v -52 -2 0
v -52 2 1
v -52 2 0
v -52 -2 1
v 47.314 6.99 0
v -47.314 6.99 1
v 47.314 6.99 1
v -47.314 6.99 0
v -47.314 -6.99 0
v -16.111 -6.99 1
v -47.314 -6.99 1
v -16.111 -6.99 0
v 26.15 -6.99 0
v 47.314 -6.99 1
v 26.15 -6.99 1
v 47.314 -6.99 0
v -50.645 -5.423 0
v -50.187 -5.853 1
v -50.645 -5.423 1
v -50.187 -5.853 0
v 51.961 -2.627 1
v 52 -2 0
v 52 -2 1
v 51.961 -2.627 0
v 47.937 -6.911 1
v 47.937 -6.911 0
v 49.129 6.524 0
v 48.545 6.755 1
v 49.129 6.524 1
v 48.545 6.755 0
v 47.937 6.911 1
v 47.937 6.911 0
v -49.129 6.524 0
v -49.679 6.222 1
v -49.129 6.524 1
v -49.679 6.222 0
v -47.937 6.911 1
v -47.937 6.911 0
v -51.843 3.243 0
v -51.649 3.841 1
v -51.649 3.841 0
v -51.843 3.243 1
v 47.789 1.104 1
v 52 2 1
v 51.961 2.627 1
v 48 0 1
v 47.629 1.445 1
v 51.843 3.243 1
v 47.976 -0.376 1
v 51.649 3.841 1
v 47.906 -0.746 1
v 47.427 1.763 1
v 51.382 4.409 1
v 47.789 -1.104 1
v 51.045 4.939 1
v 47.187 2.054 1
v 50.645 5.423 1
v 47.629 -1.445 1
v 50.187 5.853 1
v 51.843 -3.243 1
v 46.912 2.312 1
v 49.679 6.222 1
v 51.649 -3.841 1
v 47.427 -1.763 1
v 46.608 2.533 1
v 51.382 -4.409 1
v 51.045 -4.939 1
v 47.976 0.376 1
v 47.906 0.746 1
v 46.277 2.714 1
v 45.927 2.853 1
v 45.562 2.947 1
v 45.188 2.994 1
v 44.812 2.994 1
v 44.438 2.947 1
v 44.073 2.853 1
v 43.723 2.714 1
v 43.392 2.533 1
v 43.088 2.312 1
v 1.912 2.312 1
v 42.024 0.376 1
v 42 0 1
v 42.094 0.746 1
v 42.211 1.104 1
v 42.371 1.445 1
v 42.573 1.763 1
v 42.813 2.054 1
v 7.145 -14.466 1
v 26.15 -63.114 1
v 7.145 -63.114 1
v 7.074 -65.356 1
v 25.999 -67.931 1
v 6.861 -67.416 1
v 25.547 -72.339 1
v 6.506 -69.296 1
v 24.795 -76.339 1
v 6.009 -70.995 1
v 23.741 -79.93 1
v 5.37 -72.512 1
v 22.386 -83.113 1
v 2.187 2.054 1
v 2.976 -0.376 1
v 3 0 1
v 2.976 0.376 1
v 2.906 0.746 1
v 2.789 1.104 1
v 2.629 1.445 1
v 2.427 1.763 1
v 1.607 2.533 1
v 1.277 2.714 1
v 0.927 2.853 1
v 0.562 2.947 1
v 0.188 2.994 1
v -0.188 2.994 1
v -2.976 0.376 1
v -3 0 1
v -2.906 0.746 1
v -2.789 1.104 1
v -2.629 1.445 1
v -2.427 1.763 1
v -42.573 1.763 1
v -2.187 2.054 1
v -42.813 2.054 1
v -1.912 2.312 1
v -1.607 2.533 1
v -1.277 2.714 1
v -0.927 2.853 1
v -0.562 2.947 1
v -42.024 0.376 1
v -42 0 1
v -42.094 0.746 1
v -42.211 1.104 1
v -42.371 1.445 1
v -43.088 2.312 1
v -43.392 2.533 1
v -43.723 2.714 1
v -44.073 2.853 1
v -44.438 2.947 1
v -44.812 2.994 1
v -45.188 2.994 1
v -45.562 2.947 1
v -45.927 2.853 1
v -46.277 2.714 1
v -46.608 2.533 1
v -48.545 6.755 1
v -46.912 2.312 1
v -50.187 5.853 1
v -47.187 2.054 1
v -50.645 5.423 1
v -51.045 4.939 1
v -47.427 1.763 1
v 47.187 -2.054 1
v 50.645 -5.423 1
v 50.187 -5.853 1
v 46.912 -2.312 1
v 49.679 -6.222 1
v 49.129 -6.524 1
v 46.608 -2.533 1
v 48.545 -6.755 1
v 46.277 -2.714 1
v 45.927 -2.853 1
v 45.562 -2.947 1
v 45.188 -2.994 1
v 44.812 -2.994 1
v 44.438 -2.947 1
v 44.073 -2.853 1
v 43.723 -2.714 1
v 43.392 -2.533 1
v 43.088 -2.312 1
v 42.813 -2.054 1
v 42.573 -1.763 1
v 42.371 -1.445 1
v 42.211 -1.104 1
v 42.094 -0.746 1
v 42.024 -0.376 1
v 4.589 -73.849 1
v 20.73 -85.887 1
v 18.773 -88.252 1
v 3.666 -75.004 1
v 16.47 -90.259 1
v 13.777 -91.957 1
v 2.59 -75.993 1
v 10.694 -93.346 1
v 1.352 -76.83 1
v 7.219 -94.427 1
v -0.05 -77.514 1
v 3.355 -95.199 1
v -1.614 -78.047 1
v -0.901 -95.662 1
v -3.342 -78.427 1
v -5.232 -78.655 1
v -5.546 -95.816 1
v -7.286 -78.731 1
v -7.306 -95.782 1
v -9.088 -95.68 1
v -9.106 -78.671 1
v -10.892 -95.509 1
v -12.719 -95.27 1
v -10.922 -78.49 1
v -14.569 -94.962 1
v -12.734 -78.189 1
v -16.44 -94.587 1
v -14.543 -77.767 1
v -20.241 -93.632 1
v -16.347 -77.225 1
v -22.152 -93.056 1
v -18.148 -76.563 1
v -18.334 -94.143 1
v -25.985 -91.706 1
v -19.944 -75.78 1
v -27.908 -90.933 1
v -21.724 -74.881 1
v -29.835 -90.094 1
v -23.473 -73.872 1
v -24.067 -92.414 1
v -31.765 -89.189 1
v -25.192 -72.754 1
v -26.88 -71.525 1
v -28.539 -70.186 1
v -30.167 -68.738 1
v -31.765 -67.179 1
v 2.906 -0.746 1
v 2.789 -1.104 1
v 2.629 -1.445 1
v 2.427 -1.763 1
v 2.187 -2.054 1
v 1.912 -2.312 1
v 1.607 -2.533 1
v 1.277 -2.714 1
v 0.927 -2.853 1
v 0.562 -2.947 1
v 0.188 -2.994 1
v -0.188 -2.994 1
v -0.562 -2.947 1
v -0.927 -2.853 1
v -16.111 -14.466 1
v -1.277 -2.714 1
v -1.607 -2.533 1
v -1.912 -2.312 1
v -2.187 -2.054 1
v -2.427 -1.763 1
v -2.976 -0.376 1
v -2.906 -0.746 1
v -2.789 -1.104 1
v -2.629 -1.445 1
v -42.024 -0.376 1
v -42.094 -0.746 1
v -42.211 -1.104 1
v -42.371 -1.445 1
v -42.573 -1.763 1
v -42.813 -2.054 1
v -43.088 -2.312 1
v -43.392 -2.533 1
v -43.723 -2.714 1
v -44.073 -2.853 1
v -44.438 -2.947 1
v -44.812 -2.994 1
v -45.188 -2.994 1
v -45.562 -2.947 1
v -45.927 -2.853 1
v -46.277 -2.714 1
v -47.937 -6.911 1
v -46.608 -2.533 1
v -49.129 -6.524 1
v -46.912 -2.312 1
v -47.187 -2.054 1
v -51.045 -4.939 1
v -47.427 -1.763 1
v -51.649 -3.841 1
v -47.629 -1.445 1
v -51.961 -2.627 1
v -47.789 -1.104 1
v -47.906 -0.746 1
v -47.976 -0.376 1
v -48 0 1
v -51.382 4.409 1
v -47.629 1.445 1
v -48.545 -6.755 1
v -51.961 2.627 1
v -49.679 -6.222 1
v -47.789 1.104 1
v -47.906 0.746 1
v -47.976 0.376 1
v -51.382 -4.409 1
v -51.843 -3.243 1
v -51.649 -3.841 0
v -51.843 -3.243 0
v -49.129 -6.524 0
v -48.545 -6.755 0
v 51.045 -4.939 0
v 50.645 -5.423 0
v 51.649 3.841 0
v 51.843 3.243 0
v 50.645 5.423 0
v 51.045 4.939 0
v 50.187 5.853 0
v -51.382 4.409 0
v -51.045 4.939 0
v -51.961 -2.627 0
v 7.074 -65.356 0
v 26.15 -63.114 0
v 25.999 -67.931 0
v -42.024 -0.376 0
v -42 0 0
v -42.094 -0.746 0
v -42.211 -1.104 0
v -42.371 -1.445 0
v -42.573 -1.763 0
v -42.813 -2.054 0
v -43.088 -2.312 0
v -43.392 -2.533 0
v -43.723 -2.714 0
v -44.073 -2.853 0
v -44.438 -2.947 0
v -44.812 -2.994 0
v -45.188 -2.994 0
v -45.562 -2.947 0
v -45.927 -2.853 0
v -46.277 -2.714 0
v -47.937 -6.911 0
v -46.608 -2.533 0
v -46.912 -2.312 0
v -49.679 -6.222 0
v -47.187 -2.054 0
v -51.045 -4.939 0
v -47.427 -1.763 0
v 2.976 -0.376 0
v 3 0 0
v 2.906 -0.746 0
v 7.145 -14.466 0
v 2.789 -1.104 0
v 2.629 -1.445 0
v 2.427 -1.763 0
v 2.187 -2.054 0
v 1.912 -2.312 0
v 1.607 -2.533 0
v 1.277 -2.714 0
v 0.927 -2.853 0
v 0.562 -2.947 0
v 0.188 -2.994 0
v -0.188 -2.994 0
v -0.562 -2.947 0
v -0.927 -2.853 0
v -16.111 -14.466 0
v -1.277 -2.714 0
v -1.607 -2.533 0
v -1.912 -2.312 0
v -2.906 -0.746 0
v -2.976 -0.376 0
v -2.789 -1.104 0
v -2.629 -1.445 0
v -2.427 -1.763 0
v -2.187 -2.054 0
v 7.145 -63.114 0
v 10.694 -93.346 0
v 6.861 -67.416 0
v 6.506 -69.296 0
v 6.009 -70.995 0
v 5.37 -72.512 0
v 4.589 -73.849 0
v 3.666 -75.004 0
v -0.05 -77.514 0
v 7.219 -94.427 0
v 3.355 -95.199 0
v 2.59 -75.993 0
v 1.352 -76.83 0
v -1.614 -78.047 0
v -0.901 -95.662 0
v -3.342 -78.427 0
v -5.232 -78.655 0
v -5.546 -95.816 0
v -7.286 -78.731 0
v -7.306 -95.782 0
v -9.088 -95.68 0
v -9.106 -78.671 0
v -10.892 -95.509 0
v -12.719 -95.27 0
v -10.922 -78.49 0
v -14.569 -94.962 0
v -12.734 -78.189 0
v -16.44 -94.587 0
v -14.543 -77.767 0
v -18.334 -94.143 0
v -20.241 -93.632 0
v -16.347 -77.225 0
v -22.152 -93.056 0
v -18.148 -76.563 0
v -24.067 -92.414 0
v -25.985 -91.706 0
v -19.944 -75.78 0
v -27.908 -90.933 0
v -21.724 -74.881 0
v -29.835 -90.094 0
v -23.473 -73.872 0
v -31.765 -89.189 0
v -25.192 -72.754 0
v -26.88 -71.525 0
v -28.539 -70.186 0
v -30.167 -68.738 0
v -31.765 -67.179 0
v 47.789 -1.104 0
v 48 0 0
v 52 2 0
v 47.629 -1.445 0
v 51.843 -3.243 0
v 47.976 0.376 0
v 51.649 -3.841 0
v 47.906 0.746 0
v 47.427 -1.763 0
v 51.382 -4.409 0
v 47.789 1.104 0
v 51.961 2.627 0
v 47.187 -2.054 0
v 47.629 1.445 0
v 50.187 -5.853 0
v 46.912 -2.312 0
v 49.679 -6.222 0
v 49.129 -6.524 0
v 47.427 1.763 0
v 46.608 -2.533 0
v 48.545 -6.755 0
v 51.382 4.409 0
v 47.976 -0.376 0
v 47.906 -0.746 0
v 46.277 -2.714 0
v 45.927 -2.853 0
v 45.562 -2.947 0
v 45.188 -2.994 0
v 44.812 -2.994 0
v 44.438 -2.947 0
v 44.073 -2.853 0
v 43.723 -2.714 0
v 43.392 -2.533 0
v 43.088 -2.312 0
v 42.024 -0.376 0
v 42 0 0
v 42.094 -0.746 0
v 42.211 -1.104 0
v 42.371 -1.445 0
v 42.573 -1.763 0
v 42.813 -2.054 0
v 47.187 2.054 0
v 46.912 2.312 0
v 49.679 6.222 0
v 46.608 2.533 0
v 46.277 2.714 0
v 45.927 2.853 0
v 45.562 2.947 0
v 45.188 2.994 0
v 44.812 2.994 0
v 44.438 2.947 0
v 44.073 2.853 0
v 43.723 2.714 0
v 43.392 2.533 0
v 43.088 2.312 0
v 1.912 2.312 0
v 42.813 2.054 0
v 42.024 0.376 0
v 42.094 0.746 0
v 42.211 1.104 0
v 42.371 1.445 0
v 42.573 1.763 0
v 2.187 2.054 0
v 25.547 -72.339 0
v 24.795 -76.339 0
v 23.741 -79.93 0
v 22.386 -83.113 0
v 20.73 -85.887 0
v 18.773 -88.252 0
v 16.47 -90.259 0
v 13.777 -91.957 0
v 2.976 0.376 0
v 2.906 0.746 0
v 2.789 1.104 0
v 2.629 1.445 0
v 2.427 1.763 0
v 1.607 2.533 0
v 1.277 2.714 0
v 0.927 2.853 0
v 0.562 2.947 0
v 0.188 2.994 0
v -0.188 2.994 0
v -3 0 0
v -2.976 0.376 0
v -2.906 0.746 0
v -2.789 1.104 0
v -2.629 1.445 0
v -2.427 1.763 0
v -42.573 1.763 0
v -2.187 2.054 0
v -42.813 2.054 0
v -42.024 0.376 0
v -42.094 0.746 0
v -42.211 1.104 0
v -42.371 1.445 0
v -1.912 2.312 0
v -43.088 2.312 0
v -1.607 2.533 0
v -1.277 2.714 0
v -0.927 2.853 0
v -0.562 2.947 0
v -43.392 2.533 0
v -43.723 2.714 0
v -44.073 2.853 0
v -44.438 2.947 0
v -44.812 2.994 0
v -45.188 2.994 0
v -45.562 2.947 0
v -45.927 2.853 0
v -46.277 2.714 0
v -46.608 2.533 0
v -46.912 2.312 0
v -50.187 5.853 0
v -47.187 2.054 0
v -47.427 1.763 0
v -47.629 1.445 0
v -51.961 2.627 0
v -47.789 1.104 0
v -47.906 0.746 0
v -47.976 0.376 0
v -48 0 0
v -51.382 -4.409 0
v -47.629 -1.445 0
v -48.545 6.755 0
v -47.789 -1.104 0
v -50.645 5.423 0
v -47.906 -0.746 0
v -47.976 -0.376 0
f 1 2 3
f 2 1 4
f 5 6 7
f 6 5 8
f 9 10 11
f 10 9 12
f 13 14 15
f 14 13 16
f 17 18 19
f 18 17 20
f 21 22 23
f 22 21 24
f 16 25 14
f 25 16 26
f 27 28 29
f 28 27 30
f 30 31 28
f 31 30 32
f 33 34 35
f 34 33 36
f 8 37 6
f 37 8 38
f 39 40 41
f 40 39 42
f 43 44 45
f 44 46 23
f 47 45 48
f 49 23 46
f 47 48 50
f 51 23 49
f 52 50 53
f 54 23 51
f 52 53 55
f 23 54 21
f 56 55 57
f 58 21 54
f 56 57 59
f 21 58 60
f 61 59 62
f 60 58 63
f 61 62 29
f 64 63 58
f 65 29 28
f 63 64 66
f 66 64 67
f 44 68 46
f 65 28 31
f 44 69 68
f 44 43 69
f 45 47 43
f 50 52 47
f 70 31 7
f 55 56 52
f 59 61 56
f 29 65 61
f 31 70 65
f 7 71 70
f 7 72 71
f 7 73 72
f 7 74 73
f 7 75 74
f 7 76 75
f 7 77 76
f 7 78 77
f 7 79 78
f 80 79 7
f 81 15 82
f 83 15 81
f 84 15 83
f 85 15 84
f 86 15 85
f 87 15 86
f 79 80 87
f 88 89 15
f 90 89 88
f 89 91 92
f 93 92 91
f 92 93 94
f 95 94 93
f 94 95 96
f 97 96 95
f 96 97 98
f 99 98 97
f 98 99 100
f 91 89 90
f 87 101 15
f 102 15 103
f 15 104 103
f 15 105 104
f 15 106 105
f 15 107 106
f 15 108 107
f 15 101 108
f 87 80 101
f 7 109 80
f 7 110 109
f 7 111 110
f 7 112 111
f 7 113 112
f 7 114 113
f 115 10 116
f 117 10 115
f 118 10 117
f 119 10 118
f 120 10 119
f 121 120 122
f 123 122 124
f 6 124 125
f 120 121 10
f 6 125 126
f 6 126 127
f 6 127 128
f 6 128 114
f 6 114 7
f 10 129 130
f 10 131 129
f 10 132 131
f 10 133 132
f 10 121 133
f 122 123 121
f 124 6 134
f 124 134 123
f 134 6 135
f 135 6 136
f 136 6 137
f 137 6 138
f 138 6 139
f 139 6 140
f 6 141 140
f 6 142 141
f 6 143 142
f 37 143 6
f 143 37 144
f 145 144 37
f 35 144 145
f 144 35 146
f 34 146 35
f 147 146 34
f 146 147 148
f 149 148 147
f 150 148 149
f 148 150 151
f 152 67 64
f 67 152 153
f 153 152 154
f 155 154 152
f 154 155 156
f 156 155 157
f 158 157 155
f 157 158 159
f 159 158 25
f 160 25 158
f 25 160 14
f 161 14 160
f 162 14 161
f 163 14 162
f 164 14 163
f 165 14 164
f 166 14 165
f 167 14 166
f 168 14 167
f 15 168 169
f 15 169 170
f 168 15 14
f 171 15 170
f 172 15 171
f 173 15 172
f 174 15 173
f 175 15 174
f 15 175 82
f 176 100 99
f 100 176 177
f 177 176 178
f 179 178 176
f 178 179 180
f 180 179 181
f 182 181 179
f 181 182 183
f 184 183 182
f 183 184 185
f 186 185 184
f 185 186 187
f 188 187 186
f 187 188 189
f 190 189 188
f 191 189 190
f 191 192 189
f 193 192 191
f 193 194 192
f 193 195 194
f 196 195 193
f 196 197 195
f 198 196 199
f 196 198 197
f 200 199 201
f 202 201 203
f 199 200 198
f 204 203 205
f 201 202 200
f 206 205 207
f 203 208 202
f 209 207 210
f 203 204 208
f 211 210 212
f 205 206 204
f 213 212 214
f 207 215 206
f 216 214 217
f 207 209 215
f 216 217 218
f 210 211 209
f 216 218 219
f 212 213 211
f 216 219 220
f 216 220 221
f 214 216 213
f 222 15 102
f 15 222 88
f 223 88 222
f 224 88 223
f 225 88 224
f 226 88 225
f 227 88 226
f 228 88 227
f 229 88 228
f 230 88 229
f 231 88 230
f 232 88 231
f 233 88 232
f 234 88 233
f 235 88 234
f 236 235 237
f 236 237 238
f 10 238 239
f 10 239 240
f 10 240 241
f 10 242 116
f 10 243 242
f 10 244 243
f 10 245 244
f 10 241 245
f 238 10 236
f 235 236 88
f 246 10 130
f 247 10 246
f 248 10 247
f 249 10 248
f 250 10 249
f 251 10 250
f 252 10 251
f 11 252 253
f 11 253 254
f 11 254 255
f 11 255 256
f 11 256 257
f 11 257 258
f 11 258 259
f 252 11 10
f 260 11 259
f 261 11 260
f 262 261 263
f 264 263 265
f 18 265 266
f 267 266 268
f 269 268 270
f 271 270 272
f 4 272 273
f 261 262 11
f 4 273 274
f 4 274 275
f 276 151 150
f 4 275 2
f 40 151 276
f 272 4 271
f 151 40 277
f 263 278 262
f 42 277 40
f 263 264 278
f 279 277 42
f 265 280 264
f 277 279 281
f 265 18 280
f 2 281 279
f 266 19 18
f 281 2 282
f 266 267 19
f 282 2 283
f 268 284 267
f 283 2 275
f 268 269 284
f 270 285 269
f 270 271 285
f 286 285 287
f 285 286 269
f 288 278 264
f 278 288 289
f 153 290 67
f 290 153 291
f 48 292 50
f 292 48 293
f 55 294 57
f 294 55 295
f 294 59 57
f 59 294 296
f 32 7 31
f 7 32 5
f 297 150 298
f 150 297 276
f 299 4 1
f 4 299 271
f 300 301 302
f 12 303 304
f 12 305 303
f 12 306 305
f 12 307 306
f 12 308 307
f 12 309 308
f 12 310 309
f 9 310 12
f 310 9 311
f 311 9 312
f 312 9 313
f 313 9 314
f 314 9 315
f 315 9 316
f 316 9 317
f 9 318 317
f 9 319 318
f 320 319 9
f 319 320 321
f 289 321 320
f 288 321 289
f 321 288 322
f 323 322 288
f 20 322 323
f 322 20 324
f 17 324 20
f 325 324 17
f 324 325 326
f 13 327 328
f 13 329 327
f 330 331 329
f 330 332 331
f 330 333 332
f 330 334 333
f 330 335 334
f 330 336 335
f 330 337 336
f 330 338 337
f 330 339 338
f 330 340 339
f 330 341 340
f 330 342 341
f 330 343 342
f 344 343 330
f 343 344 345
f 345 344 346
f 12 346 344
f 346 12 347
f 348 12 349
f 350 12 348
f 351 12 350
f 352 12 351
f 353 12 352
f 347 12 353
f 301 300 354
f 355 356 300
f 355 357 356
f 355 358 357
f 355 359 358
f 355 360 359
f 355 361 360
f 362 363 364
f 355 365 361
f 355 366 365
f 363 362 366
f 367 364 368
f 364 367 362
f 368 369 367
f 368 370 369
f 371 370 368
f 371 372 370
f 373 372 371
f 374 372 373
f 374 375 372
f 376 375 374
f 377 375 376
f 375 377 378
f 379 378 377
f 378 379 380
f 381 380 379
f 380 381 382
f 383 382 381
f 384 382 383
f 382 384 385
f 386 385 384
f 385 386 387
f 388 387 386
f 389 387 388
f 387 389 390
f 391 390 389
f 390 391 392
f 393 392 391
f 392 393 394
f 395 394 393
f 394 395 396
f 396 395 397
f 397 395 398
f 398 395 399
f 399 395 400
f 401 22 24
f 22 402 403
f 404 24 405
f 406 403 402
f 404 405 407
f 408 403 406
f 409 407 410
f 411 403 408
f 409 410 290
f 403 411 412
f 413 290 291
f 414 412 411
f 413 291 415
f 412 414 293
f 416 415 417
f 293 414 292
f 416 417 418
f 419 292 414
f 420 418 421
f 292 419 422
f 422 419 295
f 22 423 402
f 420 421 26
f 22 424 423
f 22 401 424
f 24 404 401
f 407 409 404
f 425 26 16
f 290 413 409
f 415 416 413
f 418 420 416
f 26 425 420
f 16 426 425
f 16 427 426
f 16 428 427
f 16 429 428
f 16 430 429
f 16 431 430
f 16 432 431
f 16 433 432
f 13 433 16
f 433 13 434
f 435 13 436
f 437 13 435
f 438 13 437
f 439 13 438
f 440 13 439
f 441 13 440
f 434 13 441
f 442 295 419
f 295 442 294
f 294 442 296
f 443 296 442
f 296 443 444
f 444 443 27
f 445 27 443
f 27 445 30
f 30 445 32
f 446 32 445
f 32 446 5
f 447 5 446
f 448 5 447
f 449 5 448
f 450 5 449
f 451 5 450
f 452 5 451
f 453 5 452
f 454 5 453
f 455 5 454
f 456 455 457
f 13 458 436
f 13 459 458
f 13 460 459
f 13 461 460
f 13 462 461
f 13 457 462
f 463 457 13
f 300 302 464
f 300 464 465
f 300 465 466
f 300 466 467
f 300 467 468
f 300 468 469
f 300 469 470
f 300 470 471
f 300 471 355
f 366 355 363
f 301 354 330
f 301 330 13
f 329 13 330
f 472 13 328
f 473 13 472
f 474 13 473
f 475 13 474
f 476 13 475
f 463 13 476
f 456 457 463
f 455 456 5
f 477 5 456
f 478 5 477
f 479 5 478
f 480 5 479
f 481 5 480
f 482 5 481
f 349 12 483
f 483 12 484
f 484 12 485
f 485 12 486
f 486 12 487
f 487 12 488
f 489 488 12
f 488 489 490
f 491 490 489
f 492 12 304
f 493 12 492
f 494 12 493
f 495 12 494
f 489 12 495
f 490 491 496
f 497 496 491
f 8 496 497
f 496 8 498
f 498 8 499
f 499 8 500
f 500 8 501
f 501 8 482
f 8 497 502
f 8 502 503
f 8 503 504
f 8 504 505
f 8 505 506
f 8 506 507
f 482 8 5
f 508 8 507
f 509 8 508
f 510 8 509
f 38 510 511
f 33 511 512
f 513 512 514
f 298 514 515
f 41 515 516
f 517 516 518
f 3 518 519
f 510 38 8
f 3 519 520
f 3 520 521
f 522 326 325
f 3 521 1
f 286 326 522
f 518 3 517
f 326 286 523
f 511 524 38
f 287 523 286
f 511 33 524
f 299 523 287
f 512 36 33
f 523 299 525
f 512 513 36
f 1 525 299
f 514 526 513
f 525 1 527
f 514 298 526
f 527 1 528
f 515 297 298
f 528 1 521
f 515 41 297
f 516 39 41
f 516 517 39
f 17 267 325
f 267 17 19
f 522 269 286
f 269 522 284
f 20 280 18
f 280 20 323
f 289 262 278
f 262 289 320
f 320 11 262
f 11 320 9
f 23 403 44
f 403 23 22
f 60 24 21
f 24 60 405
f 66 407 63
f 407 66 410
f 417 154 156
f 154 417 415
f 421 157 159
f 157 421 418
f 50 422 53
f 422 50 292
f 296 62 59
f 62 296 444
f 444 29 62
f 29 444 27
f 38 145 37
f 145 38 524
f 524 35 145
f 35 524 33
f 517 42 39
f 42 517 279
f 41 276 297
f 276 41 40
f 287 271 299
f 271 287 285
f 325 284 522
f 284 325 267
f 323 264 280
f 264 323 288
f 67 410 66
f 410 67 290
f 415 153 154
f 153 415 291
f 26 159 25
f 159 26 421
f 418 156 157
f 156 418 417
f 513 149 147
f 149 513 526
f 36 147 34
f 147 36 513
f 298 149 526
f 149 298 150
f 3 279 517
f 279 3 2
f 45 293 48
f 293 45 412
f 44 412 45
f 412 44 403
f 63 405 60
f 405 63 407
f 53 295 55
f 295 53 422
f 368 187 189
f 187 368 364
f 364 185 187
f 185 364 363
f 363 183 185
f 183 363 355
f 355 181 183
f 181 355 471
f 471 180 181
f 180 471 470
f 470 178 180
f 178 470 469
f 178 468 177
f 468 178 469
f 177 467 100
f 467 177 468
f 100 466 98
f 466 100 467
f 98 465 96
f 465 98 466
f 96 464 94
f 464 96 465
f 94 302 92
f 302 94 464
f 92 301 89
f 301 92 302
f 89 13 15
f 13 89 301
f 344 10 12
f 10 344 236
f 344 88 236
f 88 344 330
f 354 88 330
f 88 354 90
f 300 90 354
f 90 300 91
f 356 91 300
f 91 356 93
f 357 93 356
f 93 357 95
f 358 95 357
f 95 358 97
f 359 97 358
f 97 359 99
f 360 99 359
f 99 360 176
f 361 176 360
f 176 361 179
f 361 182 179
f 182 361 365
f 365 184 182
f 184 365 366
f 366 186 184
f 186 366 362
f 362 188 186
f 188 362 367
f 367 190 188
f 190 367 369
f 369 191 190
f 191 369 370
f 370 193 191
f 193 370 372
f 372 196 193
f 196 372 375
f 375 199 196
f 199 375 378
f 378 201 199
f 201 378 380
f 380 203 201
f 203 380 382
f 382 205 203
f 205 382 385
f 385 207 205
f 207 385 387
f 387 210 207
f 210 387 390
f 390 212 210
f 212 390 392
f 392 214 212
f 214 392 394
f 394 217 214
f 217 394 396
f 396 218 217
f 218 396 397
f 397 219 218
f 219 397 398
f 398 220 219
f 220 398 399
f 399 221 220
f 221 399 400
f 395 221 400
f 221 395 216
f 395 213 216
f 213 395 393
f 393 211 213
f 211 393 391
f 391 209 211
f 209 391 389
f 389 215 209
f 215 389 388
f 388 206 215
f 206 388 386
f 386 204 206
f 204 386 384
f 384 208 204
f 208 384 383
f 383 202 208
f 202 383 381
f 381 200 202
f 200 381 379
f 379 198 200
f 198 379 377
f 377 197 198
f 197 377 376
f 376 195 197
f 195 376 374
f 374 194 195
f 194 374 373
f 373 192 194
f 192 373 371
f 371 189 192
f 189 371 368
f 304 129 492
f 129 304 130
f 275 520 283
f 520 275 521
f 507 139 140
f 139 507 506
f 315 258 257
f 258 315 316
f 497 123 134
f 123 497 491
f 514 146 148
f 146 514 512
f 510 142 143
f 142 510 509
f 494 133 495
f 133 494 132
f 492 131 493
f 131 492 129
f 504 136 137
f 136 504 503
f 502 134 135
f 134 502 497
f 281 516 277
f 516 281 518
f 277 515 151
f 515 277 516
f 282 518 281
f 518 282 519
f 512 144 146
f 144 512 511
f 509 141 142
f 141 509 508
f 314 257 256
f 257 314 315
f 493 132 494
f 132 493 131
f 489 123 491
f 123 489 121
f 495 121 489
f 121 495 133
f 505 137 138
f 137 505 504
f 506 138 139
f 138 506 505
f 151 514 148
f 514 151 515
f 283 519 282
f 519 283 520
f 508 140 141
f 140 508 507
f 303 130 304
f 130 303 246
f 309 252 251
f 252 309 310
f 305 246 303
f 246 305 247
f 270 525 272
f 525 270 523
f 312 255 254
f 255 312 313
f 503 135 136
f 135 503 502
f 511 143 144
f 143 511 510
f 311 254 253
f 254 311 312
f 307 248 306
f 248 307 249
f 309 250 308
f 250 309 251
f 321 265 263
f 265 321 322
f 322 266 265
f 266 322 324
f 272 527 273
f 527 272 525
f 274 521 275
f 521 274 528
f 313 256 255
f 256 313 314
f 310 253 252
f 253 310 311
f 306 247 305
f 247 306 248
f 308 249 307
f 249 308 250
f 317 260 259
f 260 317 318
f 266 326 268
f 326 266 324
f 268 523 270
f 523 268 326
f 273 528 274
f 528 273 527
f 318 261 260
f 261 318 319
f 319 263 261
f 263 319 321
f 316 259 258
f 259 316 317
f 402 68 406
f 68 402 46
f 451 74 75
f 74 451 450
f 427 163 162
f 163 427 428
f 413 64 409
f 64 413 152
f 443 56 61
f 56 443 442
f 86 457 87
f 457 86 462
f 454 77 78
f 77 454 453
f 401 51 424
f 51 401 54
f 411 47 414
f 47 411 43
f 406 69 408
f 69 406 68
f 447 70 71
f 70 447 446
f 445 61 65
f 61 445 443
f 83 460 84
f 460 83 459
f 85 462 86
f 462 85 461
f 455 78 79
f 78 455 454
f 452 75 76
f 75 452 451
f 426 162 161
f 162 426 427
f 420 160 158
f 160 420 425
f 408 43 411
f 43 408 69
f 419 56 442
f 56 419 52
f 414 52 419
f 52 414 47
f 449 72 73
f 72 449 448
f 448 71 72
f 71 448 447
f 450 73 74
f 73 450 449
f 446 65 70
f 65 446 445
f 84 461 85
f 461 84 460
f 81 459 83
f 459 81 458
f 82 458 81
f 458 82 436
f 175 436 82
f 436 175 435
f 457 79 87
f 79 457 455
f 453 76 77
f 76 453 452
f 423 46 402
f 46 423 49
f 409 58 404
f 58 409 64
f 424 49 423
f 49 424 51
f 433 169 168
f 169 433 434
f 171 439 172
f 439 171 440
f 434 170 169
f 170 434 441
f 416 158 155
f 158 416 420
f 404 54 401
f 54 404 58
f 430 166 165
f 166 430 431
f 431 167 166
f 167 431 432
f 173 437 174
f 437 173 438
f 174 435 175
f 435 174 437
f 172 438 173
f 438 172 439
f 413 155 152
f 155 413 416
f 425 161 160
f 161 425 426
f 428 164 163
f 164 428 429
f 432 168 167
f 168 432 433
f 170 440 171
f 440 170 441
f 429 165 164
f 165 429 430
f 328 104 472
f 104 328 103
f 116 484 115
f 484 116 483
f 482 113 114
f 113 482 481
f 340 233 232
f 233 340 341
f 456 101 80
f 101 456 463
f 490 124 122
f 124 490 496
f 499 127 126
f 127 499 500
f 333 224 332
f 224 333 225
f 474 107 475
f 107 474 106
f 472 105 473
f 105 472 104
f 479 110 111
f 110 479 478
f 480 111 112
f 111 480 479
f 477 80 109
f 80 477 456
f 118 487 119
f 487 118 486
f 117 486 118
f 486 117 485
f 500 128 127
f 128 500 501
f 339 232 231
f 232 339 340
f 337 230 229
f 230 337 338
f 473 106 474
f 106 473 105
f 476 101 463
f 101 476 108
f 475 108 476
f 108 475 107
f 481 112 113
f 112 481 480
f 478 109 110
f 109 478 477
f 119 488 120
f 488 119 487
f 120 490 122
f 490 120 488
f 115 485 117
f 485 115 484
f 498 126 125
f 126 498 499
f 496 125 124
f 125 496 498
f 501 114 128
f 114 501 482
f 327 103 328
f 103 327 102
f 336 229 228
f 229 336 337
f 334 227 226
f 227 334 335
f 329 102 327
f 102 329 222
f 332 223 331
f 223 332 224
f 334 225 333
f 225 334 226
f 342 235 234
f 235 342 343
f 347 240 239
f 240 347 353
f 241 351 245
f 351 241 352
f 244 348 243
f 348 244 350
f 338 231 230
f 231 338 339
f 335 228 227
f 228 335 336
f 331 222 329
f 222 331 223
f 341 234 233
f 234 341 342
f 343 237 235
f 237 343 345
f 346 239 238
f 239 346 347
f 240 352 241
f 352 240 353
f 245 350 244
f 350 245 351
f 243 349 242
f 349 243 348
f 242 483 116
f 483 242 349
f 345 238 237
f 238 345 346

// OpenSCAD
$fn = 50;


difference() {
	union() {
		translate(v = [0, 0, 0]) {
			rotate(a = [0, 0, 0]) {
				hull() {
					translate(v = [-47.0000000000, 2.0000000000, 0]) {
						rotate(a = [0, 0, 0]) {
							translate(v = [0, 0, 0]) {
								rotate(a = [0, 0, 0]) {
									cylinder(h = 1, r = 5);
								}
							}
						}
					}
					translate(v = [47.0000000000, 2.0000000000, 0]) {
						rotate(a = [0, 0, 0]) {
							translate(v = [0, 0, 0]) {
								rotate(a = [0, 0, 0]) {
									cylinder(h = 1, r = 5);
								}
							}
						}
					}
					translate(v = [-47.0000000000, -2.0000000000, 0]) {
						rotate(a = [0, 0, 0]) {
							translate(v = [0, 0, 0]) {
								rotate(a = [0, 0, 0]) {
									cylinder(h = 1, r = 5);
								}
							}
						}
					}
					translate(v = [47.0000000000, -2.0000000000, 0]) {
						rotate(a = [0, 0, 0]) {
							translate(v = [0, 0, 0]) {
								rotate(a = [0, 0, 0]) {
									cylinder(h = 1, r = 5);
								}
							}
						}
					}
				}
			}
		}
		translate(v = [0, 0, 0]) {
			rotate(a = [0, 0, 0]) {
				linear_extrude(height = 1) {
					text(font = "DejaVu Sans Mono:style=Bold", halign = "center", size = 95, text = "J", valign = "top");
				}
			}
		}
	}
	union() {
		translate(v = [-45.0000000000, 0.0000000000, -125.0000000000]) {
			rotate(a = [0, 0, 0]) {
				cylinder(h = 250, r = 3.0000000000);
			}
		}
		translate(v = [45.0000000000, 0.0000000000, -125.0000000000]) {
			rotate(a = [0, 0, 0]) {
				cylinder(h = 250, r = 3.0000000000);
			}
		}
		translate(v = [45.0000000000, 0.0000000000, -125.0000000000]) {
			rotate(a = [0, 0, 0]) {
				cylinder(h = 250, r = 3.0000000000);
			}
		}
		translate(v = [0, 0, -125.0000000000]) {
			rotate(a = [0, 0, 0]) {
				cylinder(h = 250, r = 3.0000000000);
			}
		}
	}
}
